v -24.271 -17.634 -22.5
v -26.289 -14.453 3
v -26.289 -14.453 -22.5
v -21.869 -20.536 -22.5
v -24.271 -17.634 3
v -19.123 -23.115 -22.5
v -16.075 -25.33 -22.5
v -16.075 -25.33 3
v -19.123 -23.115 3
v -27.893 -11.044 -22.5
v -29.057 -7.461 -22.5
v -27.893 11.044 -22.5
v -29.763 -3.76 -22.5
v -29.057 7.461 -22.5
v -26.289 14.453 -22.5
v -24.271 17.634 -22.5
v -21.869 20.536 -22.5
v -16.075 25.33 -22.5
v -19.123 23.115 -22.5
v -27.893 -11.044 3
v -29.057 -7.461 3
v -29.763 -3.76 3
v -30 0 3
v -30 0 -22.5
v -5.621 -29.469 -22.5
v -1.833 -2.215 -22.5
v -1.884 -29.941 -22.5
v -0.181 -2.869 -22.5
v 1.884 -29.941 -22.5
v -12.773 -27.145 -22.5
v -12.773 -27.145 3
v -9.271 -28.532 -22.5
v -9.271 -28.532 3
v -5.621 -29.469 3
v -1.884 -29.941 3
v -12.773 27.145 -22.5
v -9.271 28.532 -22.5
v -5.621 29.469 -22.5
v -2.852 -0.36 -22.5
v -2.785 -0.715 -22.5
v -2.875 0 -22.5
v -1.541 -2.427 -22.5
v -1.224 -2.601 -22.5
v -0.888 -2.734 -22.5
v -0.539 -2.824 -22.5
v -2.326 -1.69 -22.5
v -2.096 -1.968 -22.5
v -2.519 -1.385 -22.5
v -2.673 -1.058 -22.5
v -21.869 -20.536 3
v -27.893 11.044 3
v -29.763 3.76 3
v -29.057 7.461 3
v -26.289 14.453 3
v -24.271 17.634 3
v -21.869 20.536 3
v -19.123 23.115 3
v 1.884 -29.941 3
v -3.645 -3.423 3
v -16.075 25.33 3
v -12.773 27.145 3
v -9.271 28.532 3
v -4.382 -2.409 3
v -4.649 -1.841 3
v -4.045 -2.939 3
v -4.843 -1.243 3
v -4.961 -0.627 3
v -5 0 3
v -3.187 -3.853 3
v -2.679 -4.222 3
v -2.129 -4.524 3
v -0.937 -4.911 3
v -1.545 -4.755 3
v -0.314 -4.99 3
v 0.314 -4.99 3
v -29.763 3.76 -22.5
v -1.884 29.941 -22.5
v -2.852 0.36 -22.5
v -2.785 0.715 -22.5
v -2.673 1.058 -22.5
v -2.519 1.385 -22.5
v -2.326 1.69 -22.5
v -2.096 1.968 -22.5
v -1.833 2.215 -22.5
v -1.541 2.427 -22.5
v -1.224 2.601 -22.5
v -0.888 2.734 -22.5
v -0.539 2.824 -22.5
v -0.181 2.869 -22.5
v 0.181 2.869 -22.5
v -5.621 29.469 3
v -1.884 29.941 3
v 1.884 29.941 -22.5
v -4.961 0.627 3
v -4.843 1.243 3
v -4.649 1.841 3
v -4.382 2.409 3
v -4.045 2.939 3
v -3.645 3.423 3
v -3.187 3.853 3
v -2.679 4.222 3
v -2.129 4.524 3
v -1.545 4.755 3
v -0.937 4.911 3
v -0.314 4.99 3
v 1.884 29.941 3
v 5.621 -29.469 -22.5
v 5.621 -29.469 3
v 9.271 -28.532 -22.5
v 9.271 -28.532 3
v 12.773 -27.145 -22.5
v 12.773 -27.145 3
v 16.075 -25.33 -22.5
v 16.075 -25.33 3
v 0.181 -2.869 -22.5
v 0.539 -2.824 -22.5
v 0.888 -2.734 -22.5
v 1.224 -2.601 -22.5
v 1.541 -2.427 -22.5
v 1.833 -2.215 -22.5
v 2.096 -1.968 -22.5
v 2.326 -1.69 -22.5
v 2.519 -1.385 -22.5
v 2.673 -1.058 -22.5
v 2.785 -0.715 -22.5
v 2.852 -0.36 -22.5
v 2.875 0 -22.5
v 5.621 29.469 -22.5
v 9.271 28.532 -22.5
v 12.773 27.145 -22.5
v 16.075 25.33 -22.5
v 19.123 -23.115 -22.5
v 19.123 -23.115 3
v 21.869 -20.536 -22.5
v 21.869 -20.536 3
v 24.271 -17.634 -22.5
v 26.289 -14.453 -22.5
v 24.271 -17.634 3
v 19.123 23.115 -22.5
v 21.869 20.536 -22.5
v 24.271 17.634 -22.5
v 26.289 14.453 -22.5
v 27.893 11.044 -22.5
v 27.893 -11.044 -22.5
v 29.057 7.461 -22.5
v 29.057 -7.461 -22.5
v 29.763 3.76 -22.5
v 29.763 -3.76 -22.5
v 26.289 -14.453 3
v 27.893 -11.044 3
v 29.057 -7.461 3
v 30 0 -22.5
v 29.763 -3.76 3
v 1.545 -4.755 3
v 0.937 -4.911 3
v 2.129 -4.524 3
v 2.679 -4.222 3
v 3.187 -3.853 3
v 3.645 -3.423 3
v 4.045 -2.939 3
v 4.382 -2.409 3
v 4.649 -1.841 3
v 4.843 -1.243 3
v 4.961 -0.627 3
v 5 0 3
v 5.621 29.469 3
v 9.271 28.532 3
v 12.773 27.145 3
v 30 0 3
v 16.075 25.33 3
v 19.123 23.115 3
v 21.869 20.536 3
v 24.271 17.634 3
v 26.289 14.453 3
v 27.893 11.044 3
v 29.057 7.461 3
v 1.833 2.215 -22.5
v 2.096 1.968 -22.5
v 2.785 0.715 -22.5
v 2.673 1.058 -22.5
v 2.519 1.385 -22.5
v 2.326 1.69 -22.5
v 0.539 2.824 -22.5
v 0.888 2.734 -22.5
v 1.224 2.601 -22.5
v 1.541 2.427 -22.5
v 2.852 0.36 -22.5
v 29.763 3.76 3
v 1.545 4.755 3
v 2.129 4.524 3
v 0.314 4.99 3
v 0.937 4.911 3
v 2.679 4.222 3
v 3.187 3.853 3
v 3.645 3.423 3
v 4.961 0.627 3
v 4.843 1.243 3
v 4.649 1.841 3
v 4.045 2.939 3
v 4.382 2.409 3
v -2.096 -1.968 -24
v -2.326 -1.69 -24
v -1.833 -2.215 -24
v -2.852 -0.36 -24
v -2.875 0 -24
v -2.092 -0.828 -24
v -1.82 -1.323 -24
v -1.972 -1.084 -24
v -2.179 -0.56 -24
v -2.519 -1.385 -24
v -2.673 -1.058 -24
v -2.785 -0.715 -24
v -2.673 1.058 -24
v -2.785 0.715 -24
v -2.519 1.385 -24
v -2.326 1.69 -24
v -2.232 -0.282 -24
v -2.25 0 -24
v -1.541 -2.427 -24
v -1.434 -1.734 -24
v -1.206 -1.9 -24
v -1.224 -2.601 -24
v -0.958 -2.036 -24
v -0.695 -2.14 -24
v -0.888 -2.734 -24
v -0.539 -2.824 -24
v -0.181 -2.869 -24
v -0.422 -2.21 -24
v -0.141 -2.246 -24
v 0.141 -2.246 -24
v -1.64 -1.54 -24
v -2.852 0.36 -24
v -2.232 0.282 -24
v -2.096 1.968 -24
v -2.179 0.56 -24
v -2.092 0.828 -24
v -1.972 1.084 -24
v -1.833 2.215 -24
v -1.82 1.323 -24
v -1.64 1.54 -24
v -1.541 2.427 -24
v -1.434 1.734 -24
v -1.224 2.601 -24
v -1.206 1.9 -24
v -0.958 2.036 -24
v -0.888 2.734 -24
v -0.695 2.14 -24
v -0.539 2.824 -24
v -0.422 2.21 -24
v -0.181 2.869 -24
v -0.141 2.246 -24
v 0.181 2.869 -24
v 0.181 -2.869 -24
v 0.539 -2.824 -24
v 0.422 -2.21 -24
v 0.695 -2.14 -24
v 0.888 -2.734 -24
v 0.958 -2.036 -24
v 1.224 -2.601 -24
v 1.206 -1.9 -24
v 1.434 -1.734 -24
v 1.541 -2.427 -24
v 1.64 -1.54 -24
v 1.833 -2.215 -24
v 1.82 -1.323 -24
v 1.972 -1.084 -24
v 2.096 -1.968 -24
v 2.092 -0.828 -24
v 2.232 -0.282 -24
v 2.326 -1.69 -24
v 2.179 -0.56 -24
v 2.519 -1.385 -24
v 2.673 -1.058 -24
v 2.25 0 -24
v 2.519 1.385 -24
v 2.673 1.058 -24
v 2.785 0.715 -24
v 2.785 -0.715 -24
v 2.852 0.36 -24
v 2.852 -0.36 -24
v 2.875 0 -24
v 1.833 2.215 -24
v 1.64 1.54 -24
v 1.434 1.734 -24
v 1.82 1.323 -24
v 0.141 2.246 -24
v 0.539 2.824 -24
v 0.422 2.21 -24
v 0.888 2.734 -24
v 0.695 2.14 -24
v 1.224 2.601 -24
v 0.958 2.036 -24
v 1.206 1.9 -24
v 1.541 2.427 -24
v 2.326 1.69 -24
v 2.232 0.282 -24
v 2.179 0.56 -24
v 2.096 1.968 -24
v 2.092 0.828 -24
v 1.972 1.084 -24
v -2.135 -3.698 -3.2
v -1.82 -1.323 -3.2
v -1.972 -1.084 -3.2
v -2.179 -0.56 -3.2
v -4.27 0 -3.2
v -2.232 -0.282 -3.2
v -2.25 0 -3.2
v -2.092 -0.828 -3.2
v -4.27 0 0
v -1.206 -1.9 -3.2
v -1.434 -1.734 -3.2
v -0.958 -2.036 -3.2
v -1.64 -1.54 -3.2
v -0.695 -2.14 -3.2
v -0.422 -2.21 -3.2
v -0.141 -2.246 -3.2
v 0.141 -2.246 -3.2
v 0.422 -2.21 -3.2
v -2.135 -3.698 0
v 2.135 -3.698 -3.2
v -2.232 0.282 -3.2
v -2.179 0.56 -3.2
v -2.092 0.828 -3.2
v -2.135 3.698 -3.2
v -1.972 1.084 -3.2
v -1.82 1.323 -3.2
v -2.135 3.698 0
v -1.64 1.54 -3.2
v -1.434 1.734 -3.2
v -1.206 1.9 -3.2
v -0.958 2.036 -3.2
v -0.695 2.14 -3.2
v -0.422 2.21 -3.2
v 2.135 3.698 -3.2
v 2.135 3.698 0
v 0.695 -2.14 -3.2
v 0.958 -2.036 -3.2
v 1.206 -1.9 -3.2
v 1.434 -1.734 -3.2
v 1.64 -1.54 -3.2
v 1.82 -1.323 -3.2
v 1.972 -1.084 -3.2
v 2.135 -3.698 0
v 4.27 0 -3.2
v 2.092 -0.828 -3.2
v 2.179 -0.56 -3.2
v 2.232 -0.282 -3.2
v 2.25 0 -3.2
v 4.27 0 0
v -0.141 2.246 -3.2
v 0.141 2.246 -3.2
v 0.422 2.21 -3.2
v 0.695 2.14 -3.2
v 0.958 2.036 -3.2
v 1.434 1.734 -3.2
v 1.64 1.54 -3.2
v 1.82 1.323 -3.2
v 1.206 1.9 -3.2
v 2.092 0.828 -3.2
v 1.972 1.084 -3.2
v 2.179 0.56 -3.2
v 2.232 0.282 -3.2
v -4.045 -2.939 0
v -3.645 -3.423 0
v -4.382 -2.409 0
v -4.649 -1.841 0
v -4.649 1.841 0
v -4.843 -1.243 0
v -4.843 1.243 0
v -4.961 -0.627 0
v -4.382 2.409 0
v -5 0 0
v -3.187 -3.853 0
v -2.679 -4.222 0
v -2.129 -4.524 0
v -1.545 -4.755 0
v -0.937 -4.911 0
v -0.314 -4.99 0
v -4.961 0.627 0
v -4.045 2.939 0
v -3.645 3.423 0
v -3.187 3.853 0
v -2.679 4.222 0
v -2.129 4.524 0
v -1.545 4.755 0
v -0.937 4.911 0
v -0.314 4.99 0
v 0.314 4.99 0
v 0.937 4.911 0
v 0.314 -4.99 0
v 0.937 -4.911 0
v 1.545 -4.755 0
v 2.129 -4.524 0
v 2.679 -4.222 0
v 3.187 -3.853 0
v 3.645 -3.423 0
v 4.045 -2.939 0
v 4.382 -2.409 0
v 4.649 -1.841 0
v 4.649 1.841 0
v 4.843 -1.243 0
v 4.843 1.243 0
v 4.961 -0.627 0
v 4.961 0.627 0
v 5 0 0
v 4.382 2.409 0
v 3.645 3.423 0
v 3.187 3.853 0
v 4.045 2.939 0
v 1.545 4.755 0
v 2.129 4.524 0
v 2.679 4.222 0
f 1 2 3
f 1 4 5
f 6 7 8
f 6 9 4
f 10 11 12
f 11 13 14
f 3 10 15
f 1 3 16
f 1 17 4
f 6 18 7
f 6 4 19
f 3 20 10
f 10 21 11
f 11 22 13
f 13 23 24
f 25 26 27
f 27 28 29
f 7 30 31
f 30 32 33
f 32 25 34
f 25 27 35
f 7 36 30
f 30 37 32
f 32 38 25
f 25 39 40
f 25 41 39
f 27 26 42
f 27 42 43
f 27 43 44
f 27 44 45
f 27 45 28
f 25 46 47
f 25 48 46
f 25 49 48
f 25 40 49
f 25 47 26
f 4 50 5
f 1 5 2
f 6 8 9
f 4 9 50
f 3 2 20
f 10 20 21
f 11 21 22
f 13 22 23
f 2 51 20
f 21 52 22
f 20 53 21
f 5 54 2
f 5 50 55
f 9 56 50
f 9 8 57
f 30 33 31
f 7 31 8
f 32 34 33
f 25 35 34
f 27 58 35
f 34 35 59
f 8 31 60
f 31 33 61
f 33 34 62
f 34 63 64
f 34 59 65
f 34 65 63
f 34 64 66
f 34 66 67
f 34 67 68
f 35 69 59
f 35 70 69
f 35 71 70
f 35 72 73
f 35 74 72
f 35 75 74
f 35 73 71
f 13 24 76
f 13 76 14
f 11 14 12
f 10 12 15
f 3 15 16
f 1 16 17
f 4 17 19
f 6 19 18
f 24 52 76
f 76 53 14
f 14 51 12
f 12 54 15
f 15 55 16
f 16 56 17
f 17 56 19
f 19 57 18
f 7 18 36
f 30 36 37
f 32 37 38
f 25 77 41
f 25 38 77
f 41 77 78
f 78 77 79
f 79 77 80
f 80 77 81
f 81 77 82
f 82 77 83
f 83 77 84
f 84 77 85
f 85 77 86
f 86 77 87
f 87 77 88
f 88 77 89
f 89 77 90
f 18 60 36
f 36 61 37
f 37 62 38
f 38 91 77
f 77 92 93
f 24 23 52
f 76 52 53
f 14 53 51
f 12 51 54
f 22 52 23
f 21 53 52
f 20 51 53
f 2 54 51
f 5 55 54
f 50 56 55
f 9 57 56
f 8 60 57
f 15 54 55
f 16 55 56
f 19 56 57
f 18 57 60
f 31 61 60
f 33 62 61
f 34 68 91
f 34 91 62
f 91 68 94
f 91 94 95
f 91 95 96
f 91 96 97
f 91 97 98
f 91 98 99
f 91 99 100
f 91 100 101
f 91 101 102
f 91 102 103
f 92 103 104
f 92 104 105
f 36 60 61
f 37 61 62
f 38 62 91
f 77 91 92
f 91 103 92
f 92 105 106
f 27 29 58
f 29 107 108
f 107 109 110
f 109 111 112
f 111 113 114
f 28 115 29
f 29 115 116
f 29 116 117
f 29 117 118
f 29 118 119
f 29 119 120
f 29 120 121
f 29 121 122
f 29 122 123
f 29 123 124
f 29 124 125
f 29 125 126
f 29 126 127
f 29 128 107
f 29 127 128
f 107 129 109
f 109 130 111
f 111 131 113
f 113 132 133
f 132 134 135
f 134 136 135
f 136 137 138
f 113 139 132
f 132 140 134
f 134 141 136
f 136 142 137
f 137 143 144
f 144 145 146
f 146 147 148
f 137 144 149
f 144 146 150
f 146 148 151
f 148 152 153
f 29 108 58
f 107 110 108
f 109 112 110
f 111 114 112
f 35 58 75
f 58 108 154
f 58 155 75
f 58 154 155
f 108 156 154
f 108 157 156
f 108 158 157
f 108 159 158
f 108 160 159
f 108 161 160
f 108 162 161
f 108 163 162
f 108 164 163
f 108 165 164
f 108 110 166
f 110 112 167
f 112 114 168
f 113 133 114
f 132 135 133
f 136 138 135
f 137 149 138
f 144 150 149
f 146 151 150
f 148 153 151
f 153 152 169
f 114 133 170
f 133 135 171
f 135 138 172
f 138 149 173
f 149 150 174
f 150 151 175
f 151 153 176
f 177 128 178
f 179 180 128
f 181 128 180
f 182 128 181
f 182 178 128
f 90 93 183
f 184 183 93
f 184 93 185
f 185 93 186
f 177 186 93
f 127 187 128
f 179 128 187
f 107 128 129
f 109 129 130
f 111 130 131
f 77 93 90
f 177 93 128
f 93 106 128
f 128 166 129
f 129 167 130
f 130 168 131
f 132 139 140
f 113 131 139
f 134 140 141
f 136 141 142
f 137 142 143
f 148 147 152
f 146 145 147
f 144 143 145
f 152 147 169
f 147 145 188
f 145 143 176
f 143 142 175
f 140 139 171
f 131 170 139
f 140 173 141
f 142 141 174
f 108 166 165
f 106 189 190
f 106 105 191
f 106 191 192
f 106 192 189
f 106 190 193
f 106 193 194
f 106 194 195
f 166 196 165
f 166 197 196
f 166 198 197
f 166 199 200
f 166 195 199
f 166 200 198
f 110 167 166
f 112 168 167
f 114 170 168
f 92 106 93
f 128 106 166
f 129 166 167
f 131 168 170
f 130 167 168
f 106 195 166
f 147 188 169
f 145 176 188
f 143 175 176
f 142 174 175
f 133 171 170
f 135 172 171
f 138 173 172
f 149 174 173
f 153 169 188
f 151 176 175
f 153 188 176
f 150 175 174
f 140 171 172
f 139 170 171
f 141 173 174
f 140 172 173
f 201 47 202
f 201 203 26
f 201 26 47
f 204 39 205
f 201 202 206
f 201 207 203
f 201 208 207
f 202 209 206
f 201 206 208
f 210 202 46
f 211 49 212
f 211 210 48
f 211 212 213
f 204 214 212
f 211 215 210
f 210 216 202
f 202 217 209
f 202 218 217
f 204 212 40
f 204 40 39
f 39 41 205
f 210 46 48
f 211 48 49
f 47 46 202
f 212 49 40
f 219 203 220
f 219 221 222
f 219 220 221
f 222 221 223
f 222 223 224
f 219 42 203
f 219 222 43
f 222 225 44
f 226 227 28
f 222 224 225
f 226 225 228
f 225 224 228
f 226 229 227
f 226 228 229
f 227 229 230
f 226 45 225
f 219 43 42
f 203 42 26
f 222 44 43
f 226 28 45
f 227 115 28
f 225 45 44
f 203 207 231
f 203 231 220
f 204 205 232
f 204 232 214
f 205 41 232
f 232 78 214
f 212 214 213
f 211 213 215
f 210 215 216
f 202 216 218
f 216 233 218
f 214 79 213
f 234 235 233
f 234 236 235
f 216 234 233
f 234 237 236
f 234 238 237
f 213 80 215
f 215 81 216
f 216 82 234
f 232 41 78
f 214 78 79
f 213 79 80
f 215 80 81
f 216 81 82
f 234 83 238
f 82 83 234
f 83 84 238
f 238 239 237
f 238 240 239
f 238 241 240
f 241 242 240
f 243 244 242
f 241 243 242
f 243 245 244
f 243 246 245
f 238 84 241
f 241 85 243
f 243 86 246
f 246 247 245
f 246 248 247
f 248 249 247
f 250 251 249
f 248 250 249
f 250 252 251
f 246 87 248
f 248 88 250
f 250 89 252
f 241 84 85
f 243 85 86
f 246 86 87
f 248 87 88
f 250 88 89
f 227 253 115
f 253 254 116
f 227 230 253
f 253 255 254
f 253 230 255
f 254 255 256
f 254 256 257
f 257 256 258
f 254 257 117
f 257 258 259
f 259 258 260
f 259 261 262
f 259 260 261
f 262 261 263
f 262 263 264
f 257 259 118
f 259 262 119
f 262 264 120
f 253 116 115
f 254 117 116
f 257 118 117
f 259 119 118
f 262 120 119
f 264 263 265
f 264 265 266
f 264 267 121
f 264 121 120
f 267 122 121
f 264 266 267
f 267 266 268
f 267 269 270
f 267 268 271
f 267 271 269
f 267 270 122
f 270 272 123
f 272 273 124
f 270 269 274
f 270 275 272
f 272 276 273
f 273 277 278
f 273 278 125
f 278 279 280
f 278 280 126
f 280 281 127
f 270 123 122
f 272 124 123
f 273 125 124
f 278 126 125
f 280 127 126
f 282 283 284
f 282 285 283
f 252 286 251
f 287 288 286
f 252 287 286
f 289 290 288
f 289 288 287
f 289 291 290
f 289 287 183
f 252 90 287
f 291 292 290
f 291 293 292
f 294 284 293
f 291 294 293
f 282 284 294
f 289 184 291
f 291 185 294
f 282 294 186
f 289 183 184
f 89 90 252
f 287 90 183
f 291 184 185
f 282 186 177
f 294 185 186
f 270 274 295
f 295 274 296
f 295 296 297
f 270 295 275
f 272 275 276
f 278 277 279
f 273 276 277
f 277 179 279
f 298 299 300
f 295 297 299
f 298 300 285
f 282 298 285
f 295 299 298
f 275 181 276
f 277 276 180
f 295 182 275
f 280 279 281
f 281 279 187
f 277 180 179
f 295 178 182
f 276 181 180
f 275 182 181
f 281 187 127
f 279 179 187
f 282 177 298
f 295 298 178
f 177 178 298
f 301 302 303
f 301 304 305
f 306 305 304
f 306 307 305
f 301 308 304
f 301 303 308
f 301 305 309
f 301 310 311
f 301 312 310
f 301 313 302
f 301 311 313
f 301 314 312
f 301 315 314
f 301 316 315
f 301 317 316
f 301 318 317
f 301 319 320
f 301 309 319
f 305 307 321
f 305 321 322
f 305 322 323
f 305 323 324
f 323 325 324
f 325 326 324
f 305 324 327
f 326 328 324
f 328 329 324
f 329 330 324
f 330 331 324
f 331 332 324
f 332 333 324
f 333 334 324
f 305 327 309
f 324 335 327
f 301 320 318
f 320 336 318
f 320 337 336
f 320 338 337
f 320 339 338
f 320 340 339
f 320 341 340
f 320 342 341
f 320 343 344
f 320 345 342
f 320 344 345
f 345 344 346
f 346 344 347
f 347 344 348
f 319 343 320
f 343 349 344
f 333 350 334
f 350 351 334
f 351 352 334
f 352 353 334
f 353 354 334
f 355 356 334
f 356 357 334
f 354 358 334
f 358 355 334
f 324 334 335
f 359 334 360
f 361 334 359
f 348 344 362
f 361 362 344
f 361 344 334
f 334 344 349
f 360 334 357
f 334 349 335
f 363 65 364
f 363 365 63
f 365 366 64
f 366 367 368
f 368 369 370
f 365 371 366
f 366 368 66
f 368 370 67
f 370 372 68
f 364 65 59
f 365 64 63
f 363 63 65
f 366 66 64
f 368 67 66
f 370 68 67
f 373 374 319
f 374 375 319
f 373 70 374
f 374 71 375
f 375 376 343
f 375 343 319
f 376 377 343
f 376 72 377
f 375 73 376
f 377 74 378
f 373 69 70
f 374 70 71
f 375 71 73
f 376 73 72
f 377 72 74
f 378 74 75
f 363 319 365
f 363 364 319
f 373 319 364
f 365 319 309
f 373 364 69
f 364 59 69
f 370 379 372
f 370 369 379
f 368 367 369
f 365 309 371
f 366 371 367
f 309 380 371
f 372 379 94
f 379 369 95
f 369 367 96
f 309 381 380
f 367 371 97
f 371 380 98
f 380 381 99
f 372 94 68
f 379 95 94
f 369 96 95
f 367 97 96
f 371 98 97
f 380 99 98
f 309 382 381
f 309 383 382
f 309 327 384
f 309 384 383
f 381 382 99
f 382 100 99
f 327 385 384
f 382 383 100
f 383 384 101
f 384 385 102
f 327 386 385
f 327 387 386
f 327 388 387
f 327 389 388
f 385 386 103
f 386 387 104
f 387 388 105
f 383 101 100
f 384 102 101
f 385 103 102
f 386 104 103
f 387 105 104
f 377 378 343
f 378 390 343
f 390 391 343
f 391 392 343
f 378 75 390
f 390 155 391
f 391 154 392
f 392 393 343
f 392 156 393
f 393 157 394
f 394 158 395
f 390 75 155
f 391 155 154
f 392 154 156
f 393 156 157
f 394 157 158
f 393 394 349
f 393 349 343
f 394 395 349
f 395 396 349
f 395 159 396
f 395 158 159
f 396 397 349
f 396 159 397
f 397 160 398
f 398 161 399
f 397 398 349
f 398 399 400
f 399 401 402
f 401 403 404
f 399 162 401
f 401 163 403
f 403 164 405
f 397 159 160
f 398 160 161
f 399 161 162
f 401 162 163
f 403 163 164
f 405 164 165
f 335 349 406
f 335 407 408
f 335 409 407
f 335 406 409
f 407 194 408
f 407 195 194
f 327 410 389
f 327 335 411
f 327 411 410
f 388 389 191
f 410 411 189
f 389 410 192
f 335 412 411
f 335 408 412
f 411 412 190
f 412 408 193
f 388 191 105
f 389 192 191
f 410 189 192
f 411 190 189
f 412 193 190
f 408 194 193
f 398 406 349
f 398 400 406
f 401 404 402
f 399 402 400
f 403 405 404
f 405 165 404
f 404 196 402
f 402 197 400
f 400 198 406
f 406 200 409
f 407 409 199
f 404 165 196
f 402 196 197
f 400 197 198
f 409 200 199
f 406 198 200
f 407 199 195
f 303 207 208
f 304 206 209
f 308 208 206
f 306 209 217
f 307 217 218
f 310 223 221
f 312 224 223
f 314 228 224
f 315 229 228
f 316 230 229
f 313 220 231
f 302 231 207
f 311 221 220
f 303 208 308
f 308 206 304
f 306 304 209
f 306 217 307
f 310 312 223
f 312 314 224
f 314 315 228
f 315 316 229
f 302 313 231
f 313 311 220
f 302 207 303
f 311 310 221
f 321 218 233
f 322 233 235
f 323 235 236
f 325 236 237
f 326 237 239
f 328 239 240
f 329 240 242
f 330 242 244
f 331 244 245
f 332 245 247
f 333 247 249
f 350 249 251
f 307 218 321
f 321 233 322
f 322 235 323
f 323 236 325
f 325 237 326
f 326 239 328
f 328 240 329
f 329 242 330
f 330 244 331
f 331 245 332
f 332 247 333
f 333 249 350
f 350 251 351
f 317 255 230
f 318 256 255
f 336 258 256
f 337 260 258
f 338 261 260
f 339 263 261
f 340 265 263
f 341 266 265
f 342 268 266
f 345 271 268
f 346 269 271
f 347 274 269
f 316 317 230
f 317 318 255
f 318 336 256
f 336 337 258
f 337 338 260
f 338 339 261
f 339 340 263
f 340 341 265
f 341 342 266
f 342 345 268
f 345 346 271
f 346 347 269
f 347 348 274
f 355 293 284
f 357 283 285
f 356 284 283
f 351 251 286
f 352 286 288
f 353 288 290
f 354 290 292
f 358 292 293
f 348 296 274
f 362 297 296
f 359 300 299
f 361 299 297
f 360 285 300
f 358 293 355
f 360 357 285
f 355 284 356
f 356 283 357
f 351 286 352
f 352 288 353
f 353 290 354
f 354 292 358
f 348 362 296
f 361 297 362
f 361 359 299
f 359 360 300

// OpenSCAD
$fn = 50;


difference() {
	union() {
		translate(v = [0, 0, -22.5000000000]) {
			cylinder(h = 25.5000000000, r = 30.0000000000);
		}
		#translate(v = [0, 0, -24.0000000000]) {
			cylinder(h = 24, r = 2.8750000000);
		}
	}
	union() {
		translate(v = [0, 0, 0]) {
			rotate(a = [0, 0, 0]) {
				difference() {
					union() {
						translate(v = [0, 0, -3.2000000000]) {
							linear_extrude(height = 3.2000000000) {
								polygon(points = [[4.2698000000, 0.0000000000], [2.1349000000, 3.6977552691], [-2.1349000000, 3.6977552691], [-4.2698000000, 0.0000000000], [-2.1349000000, -3.6977552691], [2.1349000000, -3.6977552691]]);
							}
						}
					}
					union();
				}
			}
		}
		#cylinder(h = 3, r = 5.0000000000);
		#translate(v = [0, 0, -100.0000000000]) {
			cylinder(h = 200, r = 2.2500000000);
		}
	}
}
